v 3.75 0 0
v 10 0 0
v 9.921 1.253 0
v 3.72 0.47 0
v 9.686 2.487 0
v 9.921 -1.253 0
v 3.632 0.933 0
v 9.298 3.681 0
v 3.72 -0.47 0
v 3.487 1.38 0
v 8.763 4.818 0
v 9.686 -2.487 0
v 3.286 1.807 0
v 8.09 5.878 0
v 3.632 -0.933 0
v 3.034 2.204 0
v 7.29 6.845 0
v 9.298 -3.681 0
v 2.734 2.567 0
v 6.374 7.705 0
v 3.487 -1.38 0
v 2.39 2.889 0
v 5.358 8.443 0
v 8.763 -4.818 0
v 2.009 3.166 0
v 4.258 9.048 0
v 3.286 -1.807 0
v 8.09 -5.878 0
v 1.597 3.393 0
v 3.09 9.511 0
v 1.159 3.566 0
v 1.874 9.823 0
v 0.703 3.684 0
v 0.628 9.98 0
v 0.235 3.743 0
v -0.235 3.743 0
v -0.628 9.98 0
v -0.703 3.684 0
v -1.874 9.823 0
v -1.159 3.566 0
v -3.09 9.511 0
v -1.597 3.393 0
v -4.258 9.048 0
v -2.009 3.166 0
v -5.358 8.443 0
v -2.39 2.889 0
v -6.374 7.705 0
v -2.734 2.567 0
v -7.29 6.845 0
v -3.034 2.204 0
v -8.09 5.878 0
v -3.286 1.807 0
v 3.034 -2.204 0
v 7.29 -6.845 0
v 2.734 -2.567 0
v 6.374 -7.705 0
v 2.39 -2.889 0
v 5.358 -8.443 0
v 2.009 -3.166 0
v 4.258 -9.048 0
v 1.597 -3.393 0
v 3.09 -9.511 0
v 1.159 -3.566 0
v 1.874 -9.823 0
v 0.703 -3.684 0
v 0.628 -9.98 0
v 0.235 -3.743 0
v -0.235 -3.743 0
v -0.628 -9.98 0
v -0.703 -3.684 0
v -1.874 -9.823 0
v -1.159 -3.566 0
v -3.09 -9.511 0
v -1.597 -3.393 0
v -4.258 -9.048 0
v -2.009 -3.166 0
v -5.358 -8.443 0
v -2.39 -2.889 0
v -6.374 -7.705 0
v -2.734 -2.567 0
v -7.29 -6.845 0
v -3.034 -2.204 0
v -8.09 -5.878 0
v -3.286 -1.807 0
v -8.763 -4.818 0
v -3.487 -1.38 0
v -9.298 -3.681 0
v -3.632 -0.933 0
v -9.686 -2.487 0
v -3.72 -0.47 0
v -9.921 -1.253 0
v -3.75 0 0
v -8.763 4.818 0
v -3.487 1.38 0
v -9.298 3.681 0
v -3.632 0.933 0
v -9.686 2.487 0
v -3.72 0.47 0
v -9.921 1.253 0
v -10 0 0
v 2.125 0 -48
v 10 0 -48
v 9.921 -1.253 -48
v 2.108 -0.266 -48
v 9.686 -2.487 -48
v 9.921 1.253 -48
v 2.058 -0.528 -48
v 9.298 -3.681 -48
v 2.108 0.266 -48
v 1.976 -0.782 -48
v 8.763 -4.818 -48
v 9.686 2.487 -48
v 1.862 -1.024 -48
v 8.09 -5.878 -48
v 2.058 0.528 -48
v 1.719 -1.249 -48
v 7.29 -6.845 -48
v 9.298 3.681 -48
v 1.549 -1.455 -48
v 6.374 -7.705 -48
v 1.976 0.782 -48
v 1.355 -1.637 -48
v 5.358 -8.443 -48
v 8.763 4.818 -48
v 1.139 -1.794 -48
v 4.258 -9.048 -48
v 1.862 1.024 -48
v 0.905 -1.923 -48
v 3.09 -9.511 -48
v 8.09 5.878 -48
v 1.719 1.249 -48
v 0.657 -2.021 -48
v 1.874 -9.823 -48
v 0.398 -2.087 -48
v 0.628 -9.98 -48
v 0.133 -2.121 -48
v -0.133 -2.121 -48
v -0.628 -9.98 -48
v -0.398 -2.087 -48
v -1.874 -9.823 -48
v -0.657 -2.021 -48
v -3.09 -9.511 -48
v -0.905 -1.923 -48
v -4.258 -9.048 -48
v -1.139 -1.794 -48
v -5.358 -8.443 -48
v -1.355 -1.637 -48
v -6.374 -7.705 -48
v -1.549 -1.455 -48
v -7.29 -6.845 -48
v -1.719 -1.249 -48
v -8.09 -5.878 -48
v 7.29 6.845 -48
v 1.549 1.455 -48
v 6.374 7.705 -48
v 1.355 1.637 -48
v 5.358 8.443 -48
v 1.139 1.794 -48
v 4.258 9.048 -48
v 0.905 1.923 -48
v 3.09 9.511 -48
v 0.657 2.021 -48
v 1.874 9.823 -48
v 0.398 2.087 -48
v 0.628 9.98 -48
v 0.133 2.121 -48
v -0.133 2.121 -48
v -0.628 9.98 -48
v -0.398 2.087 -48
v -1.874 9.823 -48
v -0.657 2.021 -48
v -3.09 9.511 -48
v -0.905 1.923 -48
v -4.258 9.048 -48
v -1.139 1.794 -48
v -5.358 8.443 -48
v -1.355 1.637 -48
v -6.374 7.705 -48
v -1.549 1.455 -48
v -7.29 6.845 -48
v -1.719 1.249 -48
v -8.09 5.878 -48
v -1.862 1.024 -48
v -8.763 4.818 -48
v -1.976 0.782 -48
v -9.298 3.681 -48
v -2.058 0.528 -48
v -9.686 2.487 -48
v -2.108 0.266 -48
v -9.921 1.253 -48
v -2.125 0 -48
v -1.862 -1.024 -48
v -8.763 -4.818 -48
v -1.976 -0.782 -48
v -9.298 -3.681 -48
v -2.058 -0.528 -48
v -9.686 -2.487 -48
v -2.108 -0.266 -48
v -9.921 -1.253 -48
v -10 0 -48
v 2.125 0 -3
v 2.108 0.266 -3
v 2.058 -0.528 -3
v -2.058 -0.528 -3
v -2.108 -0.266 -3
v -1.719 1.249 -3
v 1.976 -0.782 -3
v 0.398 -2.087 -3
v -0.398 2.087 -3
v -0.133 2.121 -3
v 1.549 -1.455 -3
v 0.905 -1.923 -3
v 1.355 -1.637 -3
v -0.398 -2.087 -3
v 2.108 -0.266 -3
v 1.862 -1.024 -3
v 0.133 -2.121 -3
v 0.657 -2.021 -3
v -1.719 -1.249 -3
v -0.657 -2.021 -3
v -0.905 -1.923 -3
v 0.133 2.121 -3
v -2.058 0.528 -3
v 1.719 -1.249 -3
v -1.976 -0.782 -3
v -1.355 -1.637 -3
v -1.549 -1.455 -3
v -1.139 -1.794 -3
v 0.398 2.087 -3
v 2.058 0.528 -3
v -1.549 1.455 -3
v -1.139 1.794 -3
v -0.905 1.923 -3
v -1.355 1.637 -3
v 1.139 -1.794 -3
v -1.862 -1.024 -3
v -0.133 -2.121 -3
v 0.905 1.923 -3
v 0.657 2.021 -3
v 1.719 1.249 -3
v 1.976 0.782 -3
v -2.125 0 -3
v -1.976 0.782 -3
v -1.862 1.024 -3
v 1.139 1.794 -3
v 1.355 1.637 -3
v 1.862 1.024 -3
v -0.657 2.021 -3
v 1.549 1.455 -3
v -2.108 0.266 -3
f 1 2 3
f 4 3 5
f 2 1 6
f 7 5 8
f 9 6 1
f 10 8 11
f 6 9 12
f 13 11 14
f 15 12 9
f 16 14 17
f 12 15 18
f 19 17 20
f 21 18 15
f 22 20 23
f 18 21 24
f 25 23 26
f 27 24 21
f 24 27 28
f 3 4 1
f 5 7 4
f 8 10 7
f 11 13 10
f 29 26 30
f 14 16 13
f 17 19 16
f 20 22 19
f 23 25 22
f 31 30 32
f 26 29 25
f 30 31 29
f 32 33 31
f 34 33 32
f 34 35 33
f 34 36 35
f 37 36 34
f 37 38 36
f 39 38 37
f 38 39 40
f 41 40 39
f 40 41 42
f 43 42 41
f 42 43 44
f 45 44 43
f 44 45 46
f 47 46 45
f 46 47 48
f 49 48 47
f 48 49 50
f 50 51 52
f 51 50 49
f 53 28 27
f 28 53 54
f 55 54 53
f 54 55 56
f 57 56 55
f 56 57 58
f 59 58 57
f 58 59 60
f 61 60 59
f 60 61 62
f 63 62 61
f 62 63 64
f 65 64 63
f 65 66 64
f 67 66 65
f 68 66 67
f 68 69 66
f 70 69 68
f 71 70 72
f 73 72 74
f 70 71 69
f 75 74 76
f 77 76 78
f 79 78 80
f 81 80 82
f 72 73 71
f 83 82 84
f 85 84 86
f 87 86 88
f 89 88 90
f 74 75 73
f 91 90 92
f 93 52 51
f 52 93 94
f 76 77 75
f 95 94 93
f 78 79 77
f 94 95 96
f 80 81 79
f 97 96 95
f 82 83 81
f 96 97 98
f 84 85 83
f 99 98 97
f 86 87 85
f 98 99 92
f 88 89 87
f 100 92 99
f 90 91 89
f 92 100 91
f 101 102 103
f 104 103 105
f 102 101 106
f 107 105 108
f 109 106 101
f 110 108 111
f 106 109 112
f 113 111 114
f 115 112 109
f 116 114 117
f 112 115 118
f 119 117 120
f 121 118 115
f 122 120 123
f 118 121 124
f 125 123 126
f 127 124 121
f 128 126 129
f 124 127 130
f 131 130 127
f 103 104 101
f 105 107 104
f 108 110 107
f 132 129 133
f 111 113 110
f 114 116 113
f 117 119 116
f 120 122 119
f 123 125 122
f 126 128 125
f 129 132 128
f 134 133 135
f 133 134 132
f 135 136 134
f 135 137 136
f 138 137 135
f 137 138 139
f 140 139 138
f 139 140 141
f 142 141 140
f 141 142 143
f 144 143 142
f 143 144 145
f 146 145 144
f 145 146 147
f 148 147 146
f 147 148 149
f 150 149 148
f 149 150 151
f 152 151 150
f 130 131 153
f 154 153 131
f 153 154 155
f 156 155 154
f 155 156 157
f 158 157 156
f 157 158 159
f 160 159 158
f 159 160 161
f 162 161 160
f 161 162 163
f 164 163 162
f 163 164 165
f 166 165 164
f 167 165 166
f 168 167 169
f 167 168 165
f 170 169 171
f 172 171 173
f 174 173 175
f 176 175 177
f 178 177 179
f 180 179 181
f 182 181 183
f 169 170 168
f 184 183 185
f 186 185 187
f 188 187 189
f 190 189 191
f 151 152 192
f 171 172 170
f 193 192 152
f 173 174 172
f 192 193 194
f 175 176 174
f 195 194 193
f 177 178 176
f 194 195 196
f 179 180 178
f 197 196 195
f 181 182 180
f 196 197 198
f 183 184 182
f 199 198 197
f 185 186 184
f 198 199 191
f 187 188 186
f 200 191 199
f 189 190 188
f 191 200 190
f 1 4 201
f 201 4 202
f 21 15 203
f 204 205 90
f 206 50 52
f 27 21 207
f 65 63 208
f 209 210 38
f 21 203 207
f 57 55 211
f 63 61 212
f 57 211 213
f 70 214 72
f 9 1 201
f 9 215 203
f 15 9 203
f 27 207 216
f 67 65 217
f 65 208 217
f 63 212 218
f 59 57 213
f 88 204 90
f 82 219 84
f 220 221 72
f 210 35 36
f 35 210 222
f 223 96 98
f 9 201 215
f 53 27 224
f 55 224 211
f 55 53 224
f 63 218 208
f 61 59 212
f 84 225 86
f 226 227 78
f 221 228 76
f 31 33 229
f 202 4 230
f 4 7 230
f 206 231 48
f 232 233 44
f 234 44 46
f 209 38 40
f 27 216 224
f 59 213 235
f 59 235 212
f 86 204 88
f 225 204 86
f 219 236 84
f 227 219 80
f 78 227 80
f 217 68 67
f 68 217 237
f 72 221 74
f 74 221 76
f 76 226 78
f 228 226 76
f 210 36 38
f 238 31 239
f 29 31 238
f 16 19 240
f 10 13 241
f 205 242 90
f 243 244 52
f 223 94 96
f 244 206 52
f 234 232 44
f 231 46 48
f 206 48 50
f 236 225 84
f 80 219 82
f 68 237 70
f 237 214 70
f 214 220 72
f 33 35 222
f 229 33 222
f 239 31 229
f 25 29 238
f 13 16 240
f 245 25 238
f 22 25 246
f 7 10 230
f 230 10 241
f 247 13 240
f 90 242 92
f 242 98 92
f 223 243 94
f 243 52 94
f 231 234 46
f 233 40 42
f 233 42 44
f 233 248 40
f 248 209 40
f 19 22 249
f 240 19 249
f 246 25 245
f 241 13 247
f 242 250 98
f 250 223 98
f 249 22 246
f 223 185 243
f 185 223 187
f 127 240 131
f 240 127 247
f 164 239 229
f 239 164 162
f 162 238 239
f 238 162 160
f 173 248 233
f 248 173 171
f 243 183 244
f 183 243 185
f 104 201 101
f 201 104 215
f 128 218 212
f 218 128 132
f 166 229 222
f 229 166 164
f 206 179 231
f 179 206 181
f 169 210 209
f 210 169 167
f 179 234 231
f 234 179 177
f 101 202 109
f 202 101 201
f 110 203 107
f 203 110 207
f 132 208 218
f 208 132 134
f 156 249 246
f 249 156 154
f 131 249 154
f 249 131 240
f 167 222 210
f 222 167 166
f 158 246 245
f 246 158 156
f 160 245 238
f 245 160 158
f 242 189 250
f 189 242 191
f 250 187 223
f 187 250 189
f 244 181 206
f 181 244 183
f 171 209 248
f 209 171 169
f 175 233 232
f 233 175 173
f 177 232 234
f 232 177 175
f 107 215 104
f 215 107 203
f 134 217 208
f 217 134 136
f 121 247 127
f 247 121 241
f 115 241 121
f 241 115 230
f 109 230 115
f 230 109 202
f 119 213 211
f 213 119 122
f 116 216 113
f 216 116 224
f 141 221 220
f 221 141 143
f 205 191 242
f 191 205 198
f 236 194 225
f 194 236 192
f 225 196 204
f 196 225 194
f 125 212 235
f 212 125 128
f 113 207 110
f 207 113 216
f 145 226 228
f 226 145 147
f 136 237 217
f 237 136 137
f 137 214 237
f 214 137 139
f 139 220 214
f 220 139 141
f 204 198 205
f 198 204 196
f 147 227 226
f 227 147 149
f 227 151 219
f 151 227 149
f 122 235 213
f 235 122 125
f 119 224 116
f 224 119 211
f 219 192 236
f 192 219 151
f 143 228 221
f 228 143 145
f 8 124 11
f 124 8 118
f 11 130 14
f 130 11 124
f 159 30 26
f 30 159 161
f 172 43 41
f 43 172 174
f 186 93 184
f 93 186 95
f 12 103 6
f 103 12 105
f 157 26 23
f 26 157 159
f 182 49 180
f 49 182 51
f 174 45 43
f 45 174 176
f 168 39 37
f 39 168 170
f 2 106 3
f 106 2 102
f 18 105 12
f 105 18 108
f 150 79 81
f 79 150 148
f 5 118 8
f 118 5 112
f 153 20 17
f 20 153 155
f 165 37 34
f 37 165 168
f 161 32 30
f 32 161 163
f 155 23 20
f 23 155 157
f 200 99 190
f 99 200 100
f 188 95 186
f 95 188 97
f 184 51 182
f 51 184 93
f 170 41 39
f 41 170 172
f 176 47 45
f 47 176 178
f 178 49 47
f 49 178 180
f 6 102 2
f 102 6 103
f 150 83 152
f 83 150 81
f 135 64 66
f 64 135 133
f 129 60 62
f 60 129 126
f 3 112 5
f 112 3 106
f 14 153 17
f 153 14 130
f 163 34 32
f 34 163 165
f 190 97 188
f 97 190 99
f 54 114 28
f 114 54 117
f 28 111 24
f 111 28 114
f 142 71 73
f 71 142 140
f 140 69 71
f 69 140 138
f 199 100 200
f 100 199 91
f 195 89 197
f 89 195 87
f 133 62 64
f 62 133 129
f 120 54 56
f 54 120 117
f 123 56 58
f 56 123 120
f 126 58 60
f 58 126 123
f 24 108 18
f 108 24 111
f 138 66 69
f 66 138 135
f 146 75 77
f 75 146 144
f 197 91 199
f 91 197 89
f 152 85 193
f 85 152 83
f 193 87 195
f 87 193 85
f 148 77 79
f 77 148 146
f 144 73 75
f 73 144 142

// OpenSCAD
$fn = 50;


difference() {
	union() {
		translate(v = [0, 0, -48.0000000000]) {
			cylinder(h = 48, r = 10.0000000000);
		}
		cylinder(h = 0, r = 19.0000000000);
	}
	union() {
		translate(v = [0, 0, 0]) {
			rotate(a = [0, 0, 0]) {
				difference() {
					union() {
						#translate(v = [0, 0, -48.0000000000]) {
							cylinder(h = 48, r = 2.0000000000);
						}
						#translate(v = [0, 0, -3]) {
							cylinder(h = 3, r1 = 2.1250000000, r2 = 3.7500000000);
						}
						#translate(v = [0, 0, -48.0000000000]) {
							cylinder(h = 48, r = 2.1250000000);
						}
						#translate(v = [0, 0, -48.0000000000]) {
							cylinder(h = 48, r = 2.0000000000);
						}
					}
					union();
				}
			}
		}
	}
}
